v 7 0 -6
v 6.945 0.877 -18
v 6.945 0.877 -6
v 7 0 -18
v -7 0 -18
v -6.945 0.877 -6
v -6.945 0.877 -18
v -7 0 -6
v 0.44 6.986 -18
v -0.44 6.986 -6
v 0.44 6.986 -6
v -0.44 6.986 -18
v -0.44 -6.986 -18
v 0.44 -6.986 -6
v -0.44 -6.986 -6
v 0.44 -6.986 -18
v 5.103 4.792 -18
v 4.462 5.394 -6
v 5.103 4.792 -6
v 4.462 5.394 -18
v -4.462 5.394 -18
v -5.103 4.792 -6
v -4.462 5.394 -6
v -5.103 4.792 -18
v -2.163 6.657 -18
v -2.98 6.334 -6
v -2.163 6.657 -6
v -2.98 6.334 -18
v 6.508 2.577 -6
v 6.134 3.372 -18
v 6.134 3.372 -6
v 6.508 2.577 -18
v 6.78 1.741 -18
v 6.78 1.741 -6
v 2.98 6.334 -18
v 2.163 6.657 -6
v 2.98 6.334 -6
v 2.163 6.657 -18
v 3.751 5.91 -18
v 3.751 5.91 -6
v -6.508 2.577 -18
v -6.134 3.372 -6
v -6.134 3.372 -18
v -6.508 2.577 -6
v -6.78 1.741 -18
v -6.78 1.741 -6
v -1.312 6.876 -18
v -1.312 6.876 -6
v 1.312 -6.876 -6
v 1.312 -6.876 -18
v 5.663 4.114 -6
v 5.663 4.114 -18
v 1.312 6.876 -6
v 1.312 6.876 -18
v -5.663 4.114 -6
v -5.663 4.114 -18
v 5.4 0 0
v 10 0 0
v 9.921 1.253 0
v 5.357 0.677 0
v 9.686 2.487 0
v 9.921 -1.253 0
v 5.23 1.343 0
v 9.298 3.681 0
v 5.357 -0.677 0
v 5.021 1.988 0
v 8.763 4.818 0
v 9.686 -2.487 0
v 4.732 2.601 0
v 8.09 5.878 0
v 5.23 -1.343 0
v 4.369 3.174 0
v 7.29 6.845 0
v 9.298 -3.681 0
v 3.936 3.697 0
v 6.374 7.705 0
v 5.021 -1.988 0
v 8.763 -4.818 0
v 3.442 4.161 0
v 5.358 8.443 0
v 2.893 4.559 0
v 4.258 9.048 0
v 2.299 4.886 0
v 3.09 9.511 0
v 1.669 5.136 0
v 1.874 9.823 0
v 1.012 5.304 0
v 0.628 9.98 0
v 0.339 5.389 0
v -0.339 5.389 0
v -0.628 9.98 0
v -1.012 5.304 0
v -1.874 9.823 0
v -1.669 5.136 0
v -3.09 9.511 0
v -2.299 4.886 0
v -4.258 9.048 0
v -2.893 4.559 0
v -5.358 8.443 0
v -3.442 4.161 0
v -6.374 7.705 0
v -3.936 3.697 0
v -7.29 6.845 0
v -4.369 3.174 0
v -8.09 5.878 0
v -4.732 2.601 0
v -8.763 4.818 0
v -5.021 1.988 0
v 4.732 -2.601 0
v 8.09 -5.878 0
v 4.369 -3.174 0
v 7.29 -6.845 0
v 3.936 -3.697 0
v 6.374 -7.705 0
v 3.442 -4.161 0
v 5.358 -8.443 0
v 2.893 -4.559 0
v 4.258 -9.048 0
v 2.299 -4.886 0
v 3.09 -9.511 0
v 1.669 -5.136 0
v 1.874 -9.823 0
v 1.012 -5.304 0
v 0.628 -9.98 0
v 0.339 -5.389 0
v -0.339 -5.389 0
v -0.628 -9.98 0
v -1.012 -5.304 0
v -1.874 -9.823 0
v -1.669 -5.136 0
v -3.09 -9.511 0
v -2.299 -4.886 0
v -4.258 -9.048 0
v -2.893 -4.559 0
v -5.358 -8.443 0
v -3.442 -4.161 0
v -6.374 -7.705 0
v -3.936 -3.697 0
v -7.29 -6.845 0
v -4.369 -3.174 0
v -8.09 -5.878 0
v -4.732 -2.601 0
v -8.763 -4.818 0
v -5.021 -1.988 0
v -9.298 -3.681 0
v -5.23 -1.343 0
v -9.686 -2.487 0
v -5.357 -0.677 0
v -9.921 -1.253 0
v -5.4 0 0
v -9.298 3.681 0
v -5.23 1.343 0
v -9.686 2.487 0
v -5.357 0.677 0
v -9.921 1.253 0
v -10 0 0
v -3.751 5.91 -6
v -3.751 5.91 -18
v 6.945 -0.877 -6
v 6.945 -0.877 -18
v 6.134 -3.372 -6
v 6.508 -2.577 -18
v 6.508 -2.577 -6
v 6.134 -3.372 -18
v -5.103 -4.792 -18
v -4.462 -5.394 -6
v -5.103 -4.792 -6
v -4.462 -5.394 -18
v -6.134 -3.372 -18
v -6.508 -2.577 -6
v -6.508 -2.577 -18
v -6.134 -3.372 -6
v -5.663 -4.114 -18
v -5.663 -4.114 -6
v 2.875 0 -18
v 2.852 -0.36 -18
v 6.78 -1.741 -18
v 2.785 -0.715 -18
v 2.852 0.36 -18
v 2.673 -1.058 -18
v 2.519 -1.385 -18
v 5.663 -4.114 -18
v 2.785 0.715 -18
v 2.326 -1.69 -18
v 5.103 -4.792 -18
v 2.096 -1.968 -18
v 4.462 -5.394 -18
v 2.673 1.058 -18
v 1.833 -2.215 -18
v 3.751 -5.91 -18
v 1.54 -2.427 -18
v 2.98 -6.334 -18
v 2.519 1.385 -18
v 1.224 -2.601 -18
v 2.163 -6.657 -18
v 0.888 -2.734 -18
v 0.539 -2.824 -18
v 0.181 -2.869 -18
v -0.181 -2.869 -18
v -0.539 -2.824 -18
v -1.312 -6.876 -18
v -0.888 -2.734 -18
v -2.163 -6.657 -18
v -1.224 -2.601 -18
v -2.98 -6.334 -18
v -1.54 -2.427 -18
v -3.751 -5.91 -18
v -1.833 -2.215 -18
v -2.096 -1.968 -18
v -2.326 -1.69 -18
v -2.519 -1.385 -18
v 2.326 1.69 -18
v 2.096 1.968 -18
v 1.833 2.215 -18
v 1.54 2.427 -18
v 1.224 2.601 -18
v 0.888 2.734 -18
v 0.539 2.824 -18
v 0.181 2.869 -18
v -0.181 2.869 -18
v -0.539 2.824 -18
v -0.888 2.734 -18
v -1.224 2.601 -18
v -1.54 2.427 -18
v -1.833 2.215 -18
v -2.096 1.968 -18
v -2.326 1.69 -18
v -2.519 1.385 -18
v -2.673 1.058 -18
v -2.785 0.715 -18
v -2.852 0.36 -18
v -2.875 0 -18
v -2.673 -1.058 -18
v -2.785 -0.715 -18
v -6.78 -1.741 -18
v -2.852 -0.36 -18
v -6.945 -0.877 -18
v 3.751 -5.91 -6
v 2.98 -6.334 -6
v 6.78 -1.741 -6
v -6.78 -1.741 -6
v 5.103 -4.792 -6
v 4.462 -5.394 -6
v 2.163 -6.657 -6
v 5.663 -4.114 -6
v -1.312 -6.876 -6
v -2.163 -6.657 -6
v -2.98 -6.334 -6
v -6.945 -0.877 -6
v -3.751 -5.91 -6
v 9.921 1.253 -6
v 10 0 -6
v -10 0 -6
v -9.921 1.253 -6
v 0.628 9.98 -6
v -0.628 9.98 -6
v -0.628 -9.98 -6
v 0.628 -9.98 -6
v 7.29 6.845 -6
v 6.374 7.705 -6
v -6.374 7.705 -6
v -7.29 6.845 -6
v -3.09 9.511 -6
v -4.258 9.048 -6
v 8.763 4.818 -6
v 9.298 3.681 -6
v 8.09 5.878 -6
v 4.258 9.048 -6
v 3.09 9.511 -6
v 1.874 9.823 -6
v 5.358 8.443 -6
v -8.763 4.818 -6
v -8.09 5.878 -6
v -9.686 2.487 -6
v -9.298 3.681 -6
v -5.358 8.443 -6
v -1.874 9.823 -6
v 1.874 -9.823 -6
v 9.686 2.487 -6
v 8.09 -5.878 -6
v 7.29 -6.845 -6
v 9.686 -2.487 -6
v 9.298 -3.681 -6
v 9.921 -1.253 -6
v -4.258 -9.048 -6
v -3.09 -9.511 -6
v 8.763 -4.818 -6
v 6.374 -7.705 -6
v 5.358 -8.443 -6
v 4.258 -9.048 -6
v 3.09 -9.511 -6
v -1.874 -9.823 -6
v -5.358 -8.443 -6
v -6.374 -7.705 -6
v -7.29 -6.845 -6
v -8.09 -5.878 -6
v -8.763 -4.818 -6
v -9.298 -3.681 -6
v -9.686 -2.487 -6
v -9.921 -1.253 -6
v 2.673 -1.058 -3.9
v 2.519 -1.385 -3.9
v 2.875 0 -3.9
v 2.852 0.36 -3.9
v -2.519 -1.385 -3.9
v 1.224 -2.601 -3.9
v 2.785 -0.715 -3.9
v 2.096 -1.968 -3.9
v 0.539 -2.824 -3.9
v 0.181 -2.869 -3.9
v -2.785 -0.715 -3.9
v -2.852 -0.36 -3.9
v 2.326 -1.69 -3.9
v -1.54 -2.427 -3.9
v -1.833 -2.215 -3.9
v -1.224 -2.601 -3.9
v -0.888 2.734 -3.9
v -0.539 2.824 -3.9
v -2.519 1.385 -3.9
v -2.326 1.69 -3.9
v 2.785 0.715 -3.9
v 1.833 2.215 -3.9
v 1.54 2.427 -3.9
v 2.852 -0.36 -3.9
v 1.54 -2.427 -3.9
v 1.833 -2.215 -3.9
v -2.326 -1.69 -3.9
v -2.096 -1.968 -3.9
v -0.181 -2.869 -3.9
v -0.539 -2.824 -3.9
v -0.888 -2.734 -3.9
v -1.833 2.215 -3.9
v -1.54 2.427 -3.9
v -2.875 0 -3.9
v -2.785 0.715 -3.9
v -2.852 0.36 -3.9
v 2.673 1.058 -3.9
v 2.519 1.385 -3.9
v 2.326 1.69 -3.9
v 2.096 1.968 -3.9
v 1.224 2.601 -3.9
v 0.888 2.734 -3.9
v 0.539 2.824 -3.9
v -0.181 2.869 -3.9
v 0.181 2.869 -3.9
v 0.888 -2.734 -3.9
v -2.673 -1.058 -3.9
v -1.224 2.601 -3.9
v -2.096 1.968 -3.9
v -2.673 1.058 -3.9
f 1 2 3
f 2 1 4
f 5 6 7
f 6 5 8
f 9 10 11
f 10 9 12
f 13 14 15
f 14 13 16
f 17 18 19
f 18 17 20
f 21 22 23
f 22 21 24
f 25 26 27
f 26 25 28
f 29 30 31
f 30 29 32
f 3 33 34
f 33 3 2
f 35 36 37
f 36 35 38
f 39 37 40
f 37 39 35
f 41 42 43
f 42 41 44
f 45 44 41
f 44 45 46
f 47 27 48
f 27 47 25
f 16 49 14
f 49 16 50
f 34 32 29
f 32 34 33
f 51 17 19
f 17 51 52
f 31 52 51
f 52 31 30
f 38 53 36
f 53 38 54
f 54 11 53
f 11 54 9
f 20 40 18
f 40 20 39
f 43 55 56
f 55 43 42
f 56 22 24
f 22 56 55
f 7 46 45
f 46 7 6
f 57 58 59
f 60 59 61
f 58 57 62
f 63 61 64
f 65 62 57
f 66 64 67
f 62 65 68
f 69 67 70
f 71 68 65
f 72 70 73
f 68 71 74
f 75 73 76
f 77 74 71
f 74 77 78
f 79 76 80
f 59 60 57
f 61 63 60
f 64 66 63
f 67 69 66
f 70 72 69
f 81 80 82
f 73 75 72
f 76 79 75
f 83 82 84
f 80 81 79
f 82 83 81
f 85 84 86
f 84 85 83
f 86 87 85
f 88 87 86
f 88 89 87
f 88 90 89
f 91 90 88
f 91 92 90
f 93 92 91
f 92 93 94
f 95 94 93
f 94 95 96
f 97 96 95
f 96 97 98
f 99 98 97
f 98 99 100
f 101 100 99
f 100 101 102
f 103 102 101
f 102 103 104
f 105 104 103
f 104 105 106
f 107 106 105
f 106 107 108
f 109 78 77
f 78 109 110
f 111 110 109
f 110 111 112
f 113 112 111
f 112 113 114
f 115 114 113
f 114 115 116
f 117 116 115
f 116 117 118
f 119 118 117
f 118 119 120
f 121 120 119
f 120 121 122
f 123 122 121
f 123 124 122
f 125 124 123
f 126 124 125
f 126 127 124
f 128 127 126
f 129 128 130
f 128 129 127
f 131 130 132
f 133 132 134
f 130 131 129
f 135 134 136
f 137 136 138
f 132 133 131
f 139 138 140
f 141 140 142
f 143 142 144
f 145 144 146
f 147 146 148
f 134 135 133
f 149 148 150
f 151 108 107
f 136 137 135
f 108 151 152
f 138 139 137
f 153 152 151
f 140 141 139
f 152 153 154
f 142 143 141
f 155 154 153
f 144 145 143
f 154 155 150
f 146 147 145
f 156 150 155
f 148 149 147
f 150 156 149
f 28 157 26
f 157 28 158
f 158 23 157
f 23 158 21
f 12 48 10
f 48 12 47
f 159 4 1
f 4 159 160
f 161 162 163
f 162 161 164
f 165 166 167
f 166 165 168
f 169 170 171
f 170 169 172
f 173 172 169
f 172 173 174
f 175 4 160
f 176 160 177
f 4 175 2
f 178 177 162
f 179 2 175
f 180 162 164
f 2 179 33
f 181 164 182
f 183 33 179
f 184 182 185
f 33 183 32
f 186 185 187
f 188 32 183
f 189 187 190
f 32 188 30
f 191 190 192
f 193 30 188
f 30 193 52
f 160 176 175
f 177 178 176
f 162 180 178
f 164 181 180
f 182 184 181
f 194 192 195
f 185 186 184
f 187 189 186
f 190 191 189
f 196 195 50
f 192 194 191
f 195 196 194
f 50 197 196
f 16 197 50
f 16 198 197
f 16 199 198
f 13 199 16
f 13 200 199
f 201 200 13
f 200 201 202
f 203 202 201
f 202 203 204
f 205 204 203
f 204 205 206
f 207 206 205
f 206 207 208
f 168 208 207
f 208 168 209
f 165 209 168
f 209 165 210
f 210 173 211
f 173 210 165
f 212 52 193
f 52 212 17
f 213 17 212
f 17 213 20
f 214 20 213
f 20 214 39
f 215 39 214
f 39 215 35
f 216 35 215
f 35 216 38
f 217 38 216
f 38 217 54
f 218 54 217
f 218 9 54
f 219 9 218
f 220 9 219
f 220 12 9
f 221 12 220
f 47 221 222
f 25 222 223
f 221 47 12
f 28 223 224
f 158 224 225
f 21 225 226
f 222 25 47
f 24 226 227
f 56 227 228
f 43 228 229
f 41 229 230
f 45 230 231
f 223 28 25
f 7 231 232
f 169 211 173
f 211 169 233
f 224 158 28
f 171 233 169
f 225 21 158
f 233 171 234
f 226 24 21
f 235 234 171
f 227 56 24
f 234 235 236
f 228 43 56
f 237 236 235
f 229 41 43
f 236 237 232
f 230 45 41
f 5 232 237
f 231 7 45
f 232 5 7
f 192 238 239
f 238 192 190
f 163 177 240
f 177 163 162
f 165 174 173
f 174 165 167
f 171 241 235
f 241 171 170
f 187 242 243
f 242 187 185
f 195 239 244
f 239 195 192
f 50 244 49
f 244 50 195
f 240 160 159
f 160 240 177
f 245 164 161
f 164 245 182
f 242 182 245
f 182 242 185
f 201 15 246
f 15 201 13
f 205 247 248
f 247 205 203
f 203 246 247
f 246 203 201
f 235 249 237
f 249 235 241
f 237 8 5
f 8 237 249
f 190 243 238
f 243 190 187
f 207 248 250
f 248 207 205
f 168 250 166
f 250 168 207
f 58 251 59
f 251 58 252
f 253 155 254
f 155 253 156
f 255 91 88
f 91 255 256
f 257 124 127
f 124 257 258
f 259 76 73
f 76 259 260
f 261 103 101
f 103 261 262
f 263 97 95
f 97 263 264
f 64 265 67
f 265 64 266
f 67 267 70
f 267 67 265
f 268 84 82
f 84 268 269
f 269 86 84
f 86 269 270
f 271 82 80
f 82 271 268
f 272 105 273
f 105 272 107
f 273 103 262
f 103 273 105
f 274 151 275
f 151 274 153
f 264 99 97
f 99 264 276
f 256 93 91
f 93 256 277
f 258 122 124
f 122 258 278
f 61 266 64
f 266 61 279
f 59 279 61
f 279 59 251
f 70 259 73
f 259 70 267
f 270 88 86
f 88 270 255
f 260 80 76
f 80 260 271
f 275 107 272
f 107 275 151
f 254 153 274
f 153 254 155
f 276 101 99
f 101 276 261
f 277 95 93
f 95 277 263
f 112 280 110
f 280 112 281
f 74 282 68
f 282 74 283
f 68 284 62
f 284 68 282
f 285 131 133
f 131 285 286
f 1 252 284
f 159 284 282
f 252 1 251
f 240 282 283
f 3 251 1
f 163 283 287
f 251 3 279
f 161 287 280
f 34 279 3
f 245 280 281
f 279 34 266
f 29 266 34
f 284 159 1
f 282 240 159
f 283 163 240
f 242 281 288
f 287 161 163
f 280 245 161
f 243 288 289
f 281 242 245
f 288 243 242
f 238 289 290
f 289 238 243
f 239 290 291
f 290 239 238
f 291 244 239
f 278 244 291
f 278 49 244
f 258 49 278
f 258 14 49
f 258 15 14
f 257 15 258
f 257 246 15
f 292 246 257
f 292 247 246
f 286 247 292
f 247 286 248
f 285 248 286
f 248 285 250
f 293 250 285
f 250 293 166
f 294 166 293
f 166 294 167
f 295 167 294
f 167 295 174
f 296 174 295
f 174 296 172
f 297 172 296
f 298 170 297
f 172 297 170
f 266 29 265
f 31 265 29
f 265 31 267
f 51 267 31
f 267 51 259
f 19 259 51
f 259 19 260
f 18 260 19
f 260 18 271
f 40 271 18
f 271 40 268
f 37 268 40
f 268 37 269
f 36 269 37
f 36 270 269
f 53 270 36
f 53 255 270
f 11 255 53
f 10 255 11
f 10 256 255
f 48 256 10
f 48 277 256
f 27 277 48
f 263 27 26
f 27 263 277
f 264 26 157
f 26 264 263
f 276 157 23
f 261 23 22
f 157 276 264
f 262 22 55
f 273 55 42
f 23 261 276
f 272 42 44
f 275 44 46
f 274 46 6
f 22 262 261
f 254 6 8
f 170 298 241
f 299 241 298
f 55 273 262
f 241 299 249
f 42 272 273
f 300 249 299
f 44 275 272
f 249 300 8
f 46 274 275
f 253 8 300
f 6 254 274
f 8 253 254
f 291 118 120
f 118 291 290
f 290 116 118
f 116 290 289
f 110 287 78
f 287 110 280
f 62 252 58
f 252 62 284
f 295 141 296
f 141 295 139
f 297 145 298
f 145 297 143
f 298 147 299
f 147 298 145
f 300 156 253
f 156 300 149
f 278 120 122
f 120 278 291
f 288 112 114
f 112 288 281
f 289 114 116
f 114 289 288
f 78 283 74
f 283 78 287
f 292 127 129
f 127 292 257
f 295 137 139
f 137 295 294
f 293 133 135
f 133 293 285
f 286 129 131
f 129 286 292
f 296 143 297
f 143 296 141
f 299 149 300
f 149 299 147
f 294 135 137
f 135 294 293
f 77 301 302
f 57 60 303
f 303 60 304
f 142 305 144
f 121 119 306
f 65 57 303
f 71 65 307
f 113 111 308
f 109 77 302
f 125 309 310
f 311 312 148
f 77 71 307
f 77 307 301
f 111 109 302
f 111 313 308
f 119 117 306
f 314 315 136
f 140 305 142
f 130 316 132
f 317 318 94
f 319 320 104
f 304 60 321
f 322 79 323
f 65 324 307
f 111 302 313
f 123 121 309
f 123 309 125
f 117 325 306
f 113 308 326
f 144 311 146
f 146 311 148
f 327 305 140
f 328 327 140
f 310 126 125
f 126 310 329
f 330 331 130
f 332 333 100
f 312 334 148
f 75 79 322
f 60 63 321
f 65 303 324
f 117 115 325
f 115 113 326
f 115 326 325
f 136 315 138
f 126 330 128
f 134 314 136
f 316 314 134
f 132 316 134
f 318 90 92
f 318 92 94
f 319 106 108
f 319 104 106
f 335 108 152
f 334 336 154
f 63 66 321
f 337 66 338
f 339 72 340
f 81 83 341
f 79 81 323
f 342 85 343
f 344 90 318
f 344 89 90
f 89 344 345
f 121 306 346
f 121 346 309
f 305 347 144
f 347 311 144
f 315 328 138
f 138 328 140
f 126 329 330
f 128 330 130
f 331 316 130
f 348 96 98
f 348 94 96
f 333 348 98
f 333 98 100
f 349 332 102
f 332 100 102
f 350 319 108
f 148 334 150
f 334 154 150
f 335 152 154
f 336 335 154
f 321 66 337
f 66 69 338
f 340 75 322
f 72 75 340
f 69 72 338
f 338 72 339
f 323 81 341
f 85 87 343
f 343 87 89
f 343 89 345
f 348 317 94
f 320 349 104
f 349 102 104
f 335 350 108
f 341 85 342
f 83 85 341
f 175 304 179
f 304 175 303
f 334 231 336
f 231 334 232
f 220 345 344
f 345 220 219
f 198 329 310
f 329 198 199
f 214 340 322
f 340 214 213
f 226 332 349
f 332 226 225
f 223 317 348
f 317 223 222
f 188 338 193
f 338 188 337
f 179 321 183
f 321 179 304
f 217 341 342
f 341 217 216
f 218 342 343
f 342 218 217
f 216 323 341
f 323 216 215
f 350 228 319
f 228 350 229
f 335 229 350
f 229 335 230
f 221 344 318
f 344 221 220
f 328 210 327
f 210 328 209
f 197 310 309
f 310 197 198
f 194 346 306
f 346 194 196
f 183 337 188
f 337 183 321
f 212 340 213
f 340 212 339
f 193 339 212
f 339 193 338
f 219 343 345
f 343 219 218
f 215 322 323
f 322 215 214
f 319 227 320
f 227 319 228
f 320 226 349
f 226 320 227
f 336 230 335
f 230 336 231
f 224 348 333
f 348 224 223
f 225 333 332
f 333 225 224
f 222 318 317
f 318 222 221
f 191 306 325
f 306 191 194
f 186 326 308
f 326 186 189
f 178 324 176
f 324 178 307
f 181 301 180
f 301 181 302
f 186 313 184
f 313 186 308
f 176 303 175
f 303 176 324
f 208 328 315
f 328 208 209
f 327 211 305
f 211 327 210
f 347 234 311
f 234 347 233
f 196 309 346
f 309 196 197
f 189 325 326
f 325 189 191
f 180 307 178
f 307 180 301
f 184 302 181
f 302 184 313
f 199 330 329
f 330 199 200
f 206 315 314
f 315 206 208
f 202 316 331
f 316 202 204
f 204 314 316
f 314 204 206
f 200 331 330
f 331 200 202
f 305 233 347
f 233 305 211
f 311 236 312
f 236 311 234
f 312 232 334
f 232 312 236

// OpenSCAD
$fn = 50;


difference() {
	union() {
		translate(v = [0, 0, -18.0000000000]) {
			cylinder(h = 18, r = 7.0000000000);
		}
		translate(v = [0, 0, -6.0000000000]) {
			cylinder(h = 6, r = 10.0000000000);
		}
	}
	union() {
		translate(v = [0, 0, 0]) {
			rotate(a = [0, 0, 0]) {
				difference() {
					union() {
						#translate(v = [0, 0, -18.0000000000]) {
							cylinder(h = 18, r = 2.6000000000);
						}
						#translate(v = [0, 0, -3.9000000000]) {
							cylinder(h = 3.9000000000, r = 7.0000000000, r1 = 2.8750000000, r2 = 5.4000000000);
						}
						#translate(v = [0, 0, -18.0000000000]) {
							cylinder(h = 18, r = 2.8750000000);
						}
						#translate(v = [0, 0, -18.0000000000]) {
							cylinder(h = 18, r = 2.6000000000);
						}
					}
					union();
				}
			}
		}
	}
}
